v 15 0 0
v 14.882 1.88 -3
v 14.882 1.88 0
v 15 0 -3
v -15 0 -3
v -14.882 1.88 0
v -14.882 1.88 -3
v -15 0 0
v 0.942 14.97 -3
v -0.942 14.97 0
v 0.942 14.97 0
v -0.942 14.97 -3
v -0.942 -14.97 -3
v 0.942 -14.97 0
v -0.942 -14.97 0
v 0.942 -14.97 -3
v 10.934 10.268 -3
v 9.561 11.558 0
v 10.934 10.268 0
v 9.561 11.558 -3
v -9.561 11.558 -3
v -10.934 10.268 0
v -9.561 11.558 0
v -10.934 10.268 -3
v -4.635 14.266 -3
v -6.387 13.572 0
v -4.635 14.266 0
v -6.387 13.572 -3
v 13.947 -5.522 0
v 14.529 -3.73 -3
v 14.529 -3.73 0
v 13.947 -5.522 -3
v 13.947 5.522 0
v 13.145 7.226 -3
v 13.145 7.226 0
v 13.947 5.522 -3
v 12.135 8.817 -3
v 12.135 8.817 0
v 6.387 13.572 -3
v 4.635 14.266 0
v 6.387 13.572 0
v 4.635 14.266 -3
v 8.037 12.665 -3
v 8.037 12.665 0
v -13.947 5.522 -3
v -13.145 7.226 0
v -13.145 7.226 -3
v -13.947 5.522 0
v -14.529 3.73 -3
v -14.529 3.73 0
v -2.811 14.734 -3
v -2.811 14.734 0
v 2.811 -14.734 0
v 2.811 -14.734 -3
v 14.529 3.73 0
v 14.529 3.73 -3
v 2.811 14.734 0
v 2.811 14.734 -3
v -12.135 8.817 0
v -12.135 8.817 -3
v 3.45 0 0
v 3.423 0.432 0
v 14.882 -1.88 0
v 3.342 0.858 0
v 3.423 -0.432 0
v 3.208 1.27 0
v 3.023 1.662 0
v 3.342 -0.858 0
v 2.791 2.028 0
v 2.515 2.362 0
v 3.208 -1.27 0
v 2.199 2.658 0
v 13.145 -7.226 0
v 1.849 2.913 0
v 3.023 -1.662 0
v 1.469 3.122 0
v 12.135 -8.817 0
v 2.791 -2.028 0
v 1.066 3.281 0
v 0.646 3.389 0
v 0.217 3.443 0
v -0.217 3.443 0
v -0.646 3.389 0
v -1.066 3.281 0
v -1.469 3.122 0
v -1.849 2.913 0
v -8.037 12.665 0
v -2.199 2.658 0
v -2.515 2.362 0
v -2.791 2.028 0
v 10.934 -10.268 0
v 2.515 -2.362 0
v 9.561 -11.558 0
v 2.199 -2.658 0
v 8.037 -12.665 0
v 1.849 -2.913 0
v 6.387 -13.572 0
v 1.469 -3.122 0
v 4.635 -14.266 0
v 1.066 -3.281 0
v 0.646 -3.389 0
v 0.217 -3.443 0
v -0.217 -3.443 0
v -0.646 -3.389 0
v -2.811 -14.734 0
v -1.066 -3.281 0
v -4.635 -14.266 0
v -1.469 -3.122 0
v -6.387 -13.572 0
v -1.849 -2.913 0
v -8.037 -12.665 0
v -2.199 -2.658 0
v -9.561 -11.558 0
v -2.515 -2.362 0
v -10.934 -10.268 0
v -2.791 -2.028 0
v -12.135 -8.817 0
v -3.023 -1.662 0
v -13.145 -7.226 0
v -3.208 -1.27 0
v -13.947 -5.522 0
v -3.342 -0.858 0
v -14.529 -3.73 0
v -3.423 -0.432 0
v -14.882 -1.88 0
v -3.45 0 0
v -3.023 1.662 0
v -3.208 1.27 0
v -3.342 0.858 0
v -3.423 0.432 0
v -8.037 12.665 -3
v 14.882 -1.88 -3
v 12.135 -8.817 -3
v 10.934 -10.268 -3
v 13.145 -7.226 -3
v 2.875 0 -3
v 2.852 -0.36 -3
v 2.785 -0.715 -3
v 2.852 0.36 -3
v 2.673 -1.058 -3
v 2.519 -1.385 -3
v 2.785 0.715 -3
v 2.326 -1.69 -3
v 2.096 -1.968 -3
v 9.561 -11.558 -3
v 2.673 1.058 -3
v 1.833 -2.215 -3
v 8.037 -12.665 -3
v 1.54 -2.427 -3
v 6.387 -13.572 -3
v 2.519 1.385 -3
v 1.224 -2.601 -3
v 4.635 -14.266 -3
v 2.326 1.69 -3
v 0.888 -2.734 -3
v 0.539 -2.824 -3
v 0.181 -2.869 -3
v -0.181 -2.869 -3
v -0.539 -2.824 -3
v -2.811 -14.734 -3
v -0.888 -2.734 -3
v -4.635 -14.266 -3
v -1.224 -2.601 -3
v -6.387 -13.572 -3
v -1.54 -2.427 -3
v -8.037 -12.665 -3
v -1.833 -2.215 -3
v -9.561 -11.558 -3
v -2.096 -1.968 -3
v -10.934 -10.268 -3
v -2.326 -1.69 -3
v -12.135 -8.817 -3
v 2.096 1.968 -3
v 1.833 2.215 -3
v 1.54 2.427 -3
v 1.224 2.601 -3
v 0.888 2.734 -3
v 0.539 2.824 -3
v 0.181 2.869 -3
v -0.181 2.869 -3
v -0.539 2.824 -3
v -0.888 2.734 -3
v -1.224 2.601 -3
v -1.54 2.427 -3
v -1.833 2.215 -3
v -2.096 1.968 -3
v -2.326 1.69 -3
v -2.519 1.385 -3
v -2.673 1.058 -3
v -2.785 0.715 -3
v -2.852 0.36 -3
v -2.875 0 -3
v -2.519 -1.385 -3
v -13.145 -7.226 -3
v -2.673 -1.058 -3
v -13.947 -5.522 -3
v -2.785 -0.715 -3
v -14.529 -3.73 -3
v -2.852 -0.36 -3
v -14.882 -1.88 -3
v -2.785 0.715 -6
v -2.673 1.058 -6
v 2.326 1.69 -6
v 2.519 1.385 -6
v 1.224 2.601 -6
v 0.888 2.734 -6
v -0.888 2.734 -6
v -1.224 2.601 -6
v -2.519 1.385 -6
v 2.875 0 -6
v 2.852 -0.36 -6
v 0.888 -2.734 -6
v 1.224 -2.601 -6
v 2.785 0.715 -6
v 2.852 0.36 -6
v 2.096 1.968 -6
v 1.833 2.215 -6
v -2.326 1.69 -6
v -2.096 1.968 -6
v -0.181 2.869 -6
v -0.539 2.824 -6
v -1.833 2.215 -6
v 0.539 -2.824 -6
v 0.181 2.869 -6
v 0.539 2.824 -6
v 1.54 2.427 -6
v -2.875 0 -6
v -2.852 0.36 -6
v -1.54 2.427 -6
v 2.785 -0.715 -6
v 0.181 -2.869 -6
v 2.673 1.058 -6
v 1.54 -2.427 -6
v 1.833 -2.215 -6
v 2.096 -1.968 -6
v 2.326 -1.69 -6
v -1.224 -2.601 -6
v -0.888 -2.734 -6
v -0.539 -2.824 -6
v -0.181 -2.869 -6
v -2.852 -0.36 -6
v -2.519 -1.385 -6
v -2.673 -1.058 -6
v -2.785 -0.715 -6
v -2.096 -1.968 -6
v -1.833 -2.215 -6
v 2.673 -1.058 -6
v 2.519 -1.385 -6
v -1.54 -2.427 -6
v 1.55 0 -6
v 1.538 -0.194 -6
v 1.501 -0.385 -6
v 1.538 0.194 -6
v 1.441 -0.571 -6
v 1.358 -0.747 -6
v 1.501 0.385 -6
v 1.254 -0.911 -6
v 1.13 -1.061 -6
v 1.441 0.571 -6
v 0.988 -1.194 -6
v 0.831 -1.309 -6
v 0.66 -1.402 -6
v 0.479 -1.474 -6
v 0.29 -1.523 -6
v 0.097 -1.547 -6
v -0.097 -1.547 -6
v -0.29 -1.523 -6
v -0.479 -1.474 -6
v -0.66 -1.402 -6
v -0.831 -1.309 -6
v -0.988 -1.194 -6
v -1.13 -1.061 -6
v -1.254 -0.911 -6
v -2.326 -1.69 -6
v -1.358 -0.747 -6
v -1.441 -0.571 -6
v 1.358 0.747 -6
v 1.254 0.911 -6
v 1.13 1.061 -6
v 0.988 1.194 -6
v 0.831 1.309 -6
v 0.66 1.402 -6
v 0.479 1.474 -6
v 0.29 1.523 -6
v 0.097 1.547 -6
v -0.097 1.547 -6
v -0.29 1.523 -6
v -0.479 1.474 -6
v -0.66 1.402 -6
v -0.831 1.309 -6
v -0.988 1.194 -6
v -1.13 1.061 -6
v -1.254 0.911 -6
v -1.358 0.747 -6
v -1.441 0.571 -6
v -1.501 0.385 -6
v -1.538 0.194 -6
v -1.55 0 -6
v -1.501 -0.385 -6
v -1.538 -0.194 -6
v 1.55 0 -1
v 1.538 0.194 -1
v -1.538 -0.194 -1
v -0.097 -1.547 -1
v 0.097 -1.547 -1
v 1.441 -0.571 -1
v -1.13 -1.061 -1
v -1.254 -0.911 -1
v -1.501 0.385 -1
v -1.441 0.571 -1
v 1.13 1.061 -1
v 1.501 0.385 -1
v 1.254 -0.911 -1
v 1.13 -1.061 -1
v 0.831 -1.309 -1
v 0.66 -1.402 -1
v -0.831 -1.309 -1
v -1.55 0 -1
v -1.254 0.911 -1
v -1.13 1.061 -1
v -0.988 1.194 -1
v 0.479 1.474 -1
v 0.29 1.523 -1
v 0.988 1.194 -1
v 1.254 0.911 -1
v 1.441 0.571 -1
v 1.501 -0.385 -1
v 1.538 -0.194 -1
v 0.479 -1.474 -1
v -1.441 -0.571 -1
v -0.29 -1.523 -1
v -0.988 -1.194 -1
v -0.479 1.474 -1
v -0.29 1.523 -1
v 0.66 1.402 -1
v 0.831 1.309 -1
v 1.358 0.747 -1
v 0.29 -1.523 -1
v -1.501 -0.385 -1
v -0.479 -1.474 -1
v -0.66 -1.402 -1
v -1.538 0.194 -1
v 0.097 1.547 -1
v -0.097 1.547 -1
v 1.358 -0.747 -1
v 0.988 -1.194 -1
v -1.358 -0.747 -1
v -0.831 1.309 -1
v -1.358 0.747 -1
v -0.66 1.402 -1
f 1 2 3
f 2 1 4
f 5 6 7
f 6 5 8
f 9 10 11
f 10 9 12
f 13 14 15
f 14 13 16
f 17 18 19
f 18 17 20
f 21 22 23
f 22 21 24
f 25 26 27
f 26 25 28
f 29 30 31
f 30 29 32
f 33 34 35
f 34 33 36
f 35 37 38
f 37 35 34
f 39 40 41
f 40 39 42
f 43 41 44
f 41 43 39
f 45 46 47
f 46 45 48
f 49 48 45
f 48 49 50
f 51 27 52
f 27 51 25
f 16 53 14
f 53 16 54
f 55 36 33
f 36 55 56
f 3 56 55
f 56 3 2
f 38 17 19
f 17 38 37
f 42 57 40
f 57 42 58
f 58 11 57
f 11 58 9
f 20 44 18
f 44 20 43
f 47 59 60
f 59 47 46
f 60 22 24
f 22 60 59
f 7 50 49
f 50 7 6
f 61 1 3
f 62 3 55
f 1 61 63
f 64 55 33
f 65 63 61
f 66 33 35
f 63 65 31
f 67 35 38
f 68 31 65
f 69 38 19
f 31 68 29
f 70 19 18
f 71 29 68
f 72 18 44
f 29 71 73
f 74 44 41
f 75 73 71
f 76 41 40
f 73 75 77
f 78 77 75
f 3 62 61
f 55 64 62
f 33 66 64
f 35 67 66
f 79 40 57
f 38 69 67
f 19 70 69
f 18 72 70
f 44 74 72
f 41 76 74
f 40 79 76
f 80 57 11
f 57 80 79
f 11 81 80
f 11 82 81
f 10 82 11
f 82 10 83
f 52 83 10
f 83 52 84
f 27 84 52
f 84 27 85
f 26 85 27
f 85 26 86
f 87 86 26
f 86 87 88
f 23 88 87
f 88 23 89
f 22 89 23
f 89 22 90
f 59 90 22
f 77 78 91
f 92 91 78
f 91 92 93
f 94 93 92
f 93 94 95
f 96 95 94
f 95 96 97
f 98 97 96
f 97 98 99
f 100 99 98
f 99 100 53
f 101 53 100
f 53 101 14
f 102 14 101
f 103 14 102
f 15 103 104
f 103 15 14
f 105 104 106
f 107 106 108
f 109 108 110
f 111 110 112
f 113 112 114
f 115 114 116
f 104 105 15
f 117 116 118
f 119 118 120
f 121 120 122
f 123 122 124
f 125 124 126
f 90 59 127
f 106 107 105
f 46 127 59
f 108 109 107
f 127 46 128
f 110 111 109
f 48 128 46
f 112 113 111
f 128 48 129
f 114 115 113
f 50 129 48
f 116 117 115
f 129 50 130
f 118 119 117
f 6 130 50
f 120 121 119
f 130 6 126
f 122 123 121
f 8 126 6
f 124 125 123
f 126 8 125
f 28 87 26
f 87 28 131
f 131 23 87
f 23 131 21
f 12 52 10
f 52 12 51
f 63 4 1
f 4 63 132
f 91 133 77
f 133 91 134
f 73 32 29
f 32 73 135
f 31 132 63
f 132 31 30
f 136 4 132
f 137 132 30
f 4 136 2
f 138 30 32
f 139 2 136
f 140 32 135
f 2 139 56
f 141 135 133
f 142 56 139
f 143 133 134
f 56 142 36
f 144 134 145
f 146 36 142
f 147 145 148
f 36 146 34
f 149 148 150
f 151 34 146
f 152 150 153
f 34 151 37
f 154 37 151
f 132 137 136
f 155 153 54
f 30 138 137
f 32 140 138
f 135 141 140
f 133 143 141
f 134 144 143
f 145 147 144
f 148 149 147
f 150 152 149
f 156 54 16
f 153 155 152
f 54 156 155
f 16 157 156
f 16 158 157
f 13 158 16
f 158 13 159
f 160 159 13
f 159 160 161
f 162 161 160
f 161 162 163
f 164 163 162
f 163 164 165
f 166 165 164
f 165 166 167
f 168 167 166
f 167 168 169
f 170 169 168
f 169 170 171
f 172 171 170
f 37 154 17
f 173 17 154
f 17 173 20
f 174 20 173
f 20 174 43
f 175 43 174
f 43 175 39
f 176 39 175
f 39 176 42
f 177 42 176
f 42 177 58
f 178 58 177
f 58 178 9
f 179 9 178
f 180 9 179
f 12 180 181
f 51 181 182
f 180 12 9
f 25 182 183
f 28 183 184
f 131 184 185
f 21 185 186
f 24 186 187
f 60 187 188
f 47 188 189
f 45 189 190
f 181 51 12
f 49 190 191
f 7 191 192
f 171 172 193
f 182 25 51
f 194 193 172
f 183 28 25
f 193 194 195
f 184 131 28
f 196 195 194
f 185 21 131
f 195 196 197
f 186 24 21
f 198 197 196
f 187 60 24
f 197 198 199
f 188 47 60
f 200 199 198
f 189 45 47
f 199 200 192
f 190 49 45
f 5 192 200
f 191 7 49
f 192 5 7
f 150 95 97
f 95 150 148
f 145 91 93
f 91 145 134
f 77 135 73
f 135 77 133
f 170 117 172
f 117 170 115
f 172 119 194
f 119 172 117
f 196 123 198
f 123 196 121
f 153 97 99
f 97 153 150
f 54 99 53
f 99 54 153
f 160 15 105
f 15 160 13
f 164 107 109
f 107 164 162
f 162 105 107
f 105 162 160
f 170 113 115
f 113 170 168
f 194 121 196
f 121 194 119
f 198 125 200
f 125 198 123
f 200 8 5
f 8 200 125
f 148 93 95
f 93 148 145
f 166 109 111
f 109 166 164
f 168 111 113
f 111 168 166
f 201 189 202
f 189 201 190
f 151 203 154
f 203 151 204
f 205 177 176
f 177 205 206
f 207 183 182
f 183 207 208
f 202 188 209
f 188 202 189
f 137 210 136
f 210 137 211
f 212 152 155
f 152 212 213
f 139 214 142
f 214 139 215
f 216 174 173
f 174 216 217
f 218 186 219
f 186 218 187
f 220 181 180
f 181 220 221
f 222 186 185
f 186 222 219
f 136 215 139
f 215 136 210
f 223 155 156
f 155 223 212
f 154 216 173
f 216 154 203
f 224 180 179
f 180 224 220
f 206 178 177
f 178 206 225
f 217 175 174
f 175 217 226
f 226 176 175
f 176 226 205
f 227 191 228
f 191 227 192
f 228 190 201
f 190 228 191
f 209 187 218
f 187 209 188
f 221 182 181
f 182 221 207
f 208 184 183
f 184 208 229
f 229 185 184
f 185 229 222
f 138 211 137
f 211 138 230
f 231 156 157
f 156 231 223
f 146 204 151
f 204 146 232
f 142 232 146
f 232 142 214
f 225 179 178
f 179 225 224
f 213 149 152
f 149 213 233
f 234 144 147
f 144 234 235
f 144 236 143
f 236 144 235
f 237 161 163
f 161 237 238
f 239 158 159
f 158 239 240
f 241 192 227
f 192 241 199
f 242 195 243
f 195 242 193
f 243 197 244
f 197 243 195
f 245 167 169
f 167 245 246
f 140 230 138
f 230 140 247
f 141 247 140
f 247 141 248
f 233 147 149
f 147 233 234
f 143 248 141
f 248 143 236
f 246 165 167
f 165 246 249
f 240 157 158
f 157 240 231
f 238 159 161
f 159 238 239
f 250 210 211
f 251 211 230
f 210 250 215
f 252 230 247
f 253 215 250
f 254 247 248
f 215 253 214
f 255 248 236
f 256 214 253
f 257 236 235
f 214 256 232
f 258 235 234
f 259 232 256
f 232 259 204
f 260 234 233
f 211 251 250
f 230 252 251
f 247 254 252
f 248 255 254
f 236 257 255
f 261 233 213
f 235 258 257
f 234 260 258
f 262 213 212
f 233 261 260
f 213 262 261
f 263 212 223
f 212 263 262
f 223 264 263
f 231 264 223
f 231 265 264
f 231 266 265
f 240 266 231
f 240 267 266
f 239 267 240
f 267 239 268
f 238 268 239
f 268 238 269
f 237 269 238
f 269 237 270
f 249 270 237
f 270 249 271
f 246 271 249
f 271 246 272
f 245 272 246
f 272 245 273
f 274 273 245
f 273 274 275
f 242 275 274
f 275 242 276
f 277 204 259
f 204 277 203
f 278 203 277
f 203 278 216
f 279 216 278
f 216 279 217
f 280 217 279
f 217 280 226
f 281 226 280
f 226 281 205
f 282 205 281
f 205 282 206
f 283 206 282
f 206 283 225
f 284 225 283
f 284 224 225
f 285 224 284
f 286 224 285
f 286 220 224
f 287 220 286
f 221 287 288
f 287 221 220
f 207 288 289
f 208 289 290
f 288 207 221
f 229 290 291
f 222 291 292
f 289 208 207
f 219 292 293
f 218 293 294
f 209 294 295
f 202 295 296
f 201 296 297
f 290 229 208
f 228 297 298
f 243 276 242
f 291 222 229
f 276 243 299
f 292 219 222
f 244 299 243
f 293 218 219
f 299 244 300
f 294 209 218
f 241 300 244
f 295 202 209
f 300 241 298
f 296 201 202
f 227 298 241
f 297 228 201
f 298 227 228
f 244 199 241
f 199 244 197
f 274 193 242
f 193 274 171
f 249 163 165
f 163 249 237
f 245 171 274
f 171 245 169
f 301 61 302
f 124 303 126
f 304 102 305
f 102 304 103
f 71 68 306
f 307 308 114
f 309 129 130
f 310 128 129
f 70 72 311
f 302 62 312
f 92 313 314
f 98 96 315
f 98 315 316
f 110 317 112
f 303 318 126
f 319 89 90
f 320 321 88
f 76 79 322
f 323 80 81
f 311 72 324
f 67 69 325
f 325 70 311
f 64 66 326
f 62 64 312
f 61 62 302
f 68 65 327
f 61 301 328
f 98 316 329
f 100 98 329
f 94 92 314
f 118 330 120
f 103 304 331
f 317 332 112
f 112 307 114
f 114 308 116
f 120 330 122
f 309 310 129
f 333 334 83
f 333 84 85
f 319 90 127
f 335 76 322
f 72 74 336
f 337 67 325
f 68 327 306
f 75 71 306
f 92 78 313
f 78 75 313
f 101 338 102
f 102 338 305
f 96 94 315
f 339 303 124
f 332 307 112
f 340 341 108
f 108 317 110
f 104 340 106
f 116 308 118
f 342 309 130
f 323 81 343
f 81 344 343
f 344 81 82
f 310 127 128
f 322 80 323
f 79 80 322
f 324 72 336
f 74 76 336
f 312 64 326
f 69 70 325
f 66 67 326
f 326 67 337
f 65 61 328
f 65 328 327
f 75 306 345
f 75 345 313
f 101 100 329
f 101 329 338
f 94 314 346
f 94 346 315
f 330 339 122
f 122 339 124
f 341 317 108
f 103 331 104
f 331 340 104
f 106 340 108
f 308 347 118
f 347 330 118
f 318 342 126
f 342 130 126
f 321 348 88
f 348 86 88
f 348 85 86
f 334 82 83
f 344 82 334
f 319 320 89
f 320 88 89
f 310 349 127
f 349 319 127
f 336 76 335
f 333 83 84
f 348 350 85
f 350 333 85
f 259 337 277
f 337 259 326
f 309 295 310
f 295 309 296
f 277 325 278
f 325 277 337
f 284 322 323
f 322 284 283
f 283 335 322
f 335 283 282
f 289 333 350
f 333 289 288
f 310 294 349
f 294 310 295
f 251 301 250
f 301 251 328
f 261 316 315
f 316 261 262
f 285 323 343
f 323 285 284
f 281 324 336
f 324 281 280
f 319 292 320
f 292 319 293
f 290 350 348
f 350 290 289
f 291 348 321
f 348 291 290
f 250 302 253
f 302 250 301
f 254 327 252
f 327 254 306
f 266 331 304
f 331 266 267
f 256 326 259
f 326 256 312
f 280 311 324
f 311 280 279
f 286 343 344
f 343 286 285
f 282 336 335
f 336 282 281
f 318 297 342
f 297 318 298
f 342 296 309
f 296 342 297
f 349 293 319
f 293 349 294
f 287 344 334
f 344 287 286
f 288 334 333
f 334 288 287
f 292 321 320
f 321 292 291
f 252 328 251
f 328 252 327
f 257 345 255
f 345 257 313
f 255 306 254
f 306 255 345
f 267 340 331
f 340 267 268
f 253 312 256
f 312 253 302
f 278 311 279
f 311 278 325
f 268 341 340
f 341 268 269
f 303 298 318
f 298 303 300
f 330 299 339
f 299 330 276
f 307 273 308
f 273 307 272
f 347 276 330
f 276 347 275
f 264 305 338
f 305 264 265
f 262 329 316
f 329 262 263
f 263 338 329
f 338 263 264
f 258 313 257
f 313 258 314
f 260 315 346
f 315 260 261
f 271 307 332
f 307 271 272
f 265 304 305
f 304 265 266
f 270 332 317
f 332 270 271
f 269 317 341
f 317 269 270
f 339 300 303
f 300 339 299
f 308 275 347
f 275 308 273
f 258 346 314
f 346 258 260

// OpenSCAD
$fn = 50;


difference() {
	union() {
		translate(v = [0, 0, -3.0000000000]) {
			cylinder(h = 3, r = 15.0000000000);
		}
		#translate(v = [0, 0, -6.0000000000]) {
			cylinder(h = 6, r = 2.8750000000);
		}
	}
	union() {
		translate(v = [0, 0, 0]) {
			rotate(a = [0, 0, 0]) {
				difference() {
					union() {
						translate(v = [0, 0, -6.0000000000]) {
							cylinder(h = 6, r = 1.2500000000);
						}
						translate(v = [0, 0, -1.0000000000]) {
							cylinder(h = 1.0000000000, r1 = 1.5500000000, r2 = 3.4500000000);
						}
						translate(v = [0, 0, -6.0000000000]) {
							cylinder(h = 6, r = 1.5500000000);
						}
						translate(v = [0, 0, -6.0000000000]) {
							cylinder(h = 6, r = 1.2500000000);
						}
					}
					union();
				}
			}
		}
	}
}
